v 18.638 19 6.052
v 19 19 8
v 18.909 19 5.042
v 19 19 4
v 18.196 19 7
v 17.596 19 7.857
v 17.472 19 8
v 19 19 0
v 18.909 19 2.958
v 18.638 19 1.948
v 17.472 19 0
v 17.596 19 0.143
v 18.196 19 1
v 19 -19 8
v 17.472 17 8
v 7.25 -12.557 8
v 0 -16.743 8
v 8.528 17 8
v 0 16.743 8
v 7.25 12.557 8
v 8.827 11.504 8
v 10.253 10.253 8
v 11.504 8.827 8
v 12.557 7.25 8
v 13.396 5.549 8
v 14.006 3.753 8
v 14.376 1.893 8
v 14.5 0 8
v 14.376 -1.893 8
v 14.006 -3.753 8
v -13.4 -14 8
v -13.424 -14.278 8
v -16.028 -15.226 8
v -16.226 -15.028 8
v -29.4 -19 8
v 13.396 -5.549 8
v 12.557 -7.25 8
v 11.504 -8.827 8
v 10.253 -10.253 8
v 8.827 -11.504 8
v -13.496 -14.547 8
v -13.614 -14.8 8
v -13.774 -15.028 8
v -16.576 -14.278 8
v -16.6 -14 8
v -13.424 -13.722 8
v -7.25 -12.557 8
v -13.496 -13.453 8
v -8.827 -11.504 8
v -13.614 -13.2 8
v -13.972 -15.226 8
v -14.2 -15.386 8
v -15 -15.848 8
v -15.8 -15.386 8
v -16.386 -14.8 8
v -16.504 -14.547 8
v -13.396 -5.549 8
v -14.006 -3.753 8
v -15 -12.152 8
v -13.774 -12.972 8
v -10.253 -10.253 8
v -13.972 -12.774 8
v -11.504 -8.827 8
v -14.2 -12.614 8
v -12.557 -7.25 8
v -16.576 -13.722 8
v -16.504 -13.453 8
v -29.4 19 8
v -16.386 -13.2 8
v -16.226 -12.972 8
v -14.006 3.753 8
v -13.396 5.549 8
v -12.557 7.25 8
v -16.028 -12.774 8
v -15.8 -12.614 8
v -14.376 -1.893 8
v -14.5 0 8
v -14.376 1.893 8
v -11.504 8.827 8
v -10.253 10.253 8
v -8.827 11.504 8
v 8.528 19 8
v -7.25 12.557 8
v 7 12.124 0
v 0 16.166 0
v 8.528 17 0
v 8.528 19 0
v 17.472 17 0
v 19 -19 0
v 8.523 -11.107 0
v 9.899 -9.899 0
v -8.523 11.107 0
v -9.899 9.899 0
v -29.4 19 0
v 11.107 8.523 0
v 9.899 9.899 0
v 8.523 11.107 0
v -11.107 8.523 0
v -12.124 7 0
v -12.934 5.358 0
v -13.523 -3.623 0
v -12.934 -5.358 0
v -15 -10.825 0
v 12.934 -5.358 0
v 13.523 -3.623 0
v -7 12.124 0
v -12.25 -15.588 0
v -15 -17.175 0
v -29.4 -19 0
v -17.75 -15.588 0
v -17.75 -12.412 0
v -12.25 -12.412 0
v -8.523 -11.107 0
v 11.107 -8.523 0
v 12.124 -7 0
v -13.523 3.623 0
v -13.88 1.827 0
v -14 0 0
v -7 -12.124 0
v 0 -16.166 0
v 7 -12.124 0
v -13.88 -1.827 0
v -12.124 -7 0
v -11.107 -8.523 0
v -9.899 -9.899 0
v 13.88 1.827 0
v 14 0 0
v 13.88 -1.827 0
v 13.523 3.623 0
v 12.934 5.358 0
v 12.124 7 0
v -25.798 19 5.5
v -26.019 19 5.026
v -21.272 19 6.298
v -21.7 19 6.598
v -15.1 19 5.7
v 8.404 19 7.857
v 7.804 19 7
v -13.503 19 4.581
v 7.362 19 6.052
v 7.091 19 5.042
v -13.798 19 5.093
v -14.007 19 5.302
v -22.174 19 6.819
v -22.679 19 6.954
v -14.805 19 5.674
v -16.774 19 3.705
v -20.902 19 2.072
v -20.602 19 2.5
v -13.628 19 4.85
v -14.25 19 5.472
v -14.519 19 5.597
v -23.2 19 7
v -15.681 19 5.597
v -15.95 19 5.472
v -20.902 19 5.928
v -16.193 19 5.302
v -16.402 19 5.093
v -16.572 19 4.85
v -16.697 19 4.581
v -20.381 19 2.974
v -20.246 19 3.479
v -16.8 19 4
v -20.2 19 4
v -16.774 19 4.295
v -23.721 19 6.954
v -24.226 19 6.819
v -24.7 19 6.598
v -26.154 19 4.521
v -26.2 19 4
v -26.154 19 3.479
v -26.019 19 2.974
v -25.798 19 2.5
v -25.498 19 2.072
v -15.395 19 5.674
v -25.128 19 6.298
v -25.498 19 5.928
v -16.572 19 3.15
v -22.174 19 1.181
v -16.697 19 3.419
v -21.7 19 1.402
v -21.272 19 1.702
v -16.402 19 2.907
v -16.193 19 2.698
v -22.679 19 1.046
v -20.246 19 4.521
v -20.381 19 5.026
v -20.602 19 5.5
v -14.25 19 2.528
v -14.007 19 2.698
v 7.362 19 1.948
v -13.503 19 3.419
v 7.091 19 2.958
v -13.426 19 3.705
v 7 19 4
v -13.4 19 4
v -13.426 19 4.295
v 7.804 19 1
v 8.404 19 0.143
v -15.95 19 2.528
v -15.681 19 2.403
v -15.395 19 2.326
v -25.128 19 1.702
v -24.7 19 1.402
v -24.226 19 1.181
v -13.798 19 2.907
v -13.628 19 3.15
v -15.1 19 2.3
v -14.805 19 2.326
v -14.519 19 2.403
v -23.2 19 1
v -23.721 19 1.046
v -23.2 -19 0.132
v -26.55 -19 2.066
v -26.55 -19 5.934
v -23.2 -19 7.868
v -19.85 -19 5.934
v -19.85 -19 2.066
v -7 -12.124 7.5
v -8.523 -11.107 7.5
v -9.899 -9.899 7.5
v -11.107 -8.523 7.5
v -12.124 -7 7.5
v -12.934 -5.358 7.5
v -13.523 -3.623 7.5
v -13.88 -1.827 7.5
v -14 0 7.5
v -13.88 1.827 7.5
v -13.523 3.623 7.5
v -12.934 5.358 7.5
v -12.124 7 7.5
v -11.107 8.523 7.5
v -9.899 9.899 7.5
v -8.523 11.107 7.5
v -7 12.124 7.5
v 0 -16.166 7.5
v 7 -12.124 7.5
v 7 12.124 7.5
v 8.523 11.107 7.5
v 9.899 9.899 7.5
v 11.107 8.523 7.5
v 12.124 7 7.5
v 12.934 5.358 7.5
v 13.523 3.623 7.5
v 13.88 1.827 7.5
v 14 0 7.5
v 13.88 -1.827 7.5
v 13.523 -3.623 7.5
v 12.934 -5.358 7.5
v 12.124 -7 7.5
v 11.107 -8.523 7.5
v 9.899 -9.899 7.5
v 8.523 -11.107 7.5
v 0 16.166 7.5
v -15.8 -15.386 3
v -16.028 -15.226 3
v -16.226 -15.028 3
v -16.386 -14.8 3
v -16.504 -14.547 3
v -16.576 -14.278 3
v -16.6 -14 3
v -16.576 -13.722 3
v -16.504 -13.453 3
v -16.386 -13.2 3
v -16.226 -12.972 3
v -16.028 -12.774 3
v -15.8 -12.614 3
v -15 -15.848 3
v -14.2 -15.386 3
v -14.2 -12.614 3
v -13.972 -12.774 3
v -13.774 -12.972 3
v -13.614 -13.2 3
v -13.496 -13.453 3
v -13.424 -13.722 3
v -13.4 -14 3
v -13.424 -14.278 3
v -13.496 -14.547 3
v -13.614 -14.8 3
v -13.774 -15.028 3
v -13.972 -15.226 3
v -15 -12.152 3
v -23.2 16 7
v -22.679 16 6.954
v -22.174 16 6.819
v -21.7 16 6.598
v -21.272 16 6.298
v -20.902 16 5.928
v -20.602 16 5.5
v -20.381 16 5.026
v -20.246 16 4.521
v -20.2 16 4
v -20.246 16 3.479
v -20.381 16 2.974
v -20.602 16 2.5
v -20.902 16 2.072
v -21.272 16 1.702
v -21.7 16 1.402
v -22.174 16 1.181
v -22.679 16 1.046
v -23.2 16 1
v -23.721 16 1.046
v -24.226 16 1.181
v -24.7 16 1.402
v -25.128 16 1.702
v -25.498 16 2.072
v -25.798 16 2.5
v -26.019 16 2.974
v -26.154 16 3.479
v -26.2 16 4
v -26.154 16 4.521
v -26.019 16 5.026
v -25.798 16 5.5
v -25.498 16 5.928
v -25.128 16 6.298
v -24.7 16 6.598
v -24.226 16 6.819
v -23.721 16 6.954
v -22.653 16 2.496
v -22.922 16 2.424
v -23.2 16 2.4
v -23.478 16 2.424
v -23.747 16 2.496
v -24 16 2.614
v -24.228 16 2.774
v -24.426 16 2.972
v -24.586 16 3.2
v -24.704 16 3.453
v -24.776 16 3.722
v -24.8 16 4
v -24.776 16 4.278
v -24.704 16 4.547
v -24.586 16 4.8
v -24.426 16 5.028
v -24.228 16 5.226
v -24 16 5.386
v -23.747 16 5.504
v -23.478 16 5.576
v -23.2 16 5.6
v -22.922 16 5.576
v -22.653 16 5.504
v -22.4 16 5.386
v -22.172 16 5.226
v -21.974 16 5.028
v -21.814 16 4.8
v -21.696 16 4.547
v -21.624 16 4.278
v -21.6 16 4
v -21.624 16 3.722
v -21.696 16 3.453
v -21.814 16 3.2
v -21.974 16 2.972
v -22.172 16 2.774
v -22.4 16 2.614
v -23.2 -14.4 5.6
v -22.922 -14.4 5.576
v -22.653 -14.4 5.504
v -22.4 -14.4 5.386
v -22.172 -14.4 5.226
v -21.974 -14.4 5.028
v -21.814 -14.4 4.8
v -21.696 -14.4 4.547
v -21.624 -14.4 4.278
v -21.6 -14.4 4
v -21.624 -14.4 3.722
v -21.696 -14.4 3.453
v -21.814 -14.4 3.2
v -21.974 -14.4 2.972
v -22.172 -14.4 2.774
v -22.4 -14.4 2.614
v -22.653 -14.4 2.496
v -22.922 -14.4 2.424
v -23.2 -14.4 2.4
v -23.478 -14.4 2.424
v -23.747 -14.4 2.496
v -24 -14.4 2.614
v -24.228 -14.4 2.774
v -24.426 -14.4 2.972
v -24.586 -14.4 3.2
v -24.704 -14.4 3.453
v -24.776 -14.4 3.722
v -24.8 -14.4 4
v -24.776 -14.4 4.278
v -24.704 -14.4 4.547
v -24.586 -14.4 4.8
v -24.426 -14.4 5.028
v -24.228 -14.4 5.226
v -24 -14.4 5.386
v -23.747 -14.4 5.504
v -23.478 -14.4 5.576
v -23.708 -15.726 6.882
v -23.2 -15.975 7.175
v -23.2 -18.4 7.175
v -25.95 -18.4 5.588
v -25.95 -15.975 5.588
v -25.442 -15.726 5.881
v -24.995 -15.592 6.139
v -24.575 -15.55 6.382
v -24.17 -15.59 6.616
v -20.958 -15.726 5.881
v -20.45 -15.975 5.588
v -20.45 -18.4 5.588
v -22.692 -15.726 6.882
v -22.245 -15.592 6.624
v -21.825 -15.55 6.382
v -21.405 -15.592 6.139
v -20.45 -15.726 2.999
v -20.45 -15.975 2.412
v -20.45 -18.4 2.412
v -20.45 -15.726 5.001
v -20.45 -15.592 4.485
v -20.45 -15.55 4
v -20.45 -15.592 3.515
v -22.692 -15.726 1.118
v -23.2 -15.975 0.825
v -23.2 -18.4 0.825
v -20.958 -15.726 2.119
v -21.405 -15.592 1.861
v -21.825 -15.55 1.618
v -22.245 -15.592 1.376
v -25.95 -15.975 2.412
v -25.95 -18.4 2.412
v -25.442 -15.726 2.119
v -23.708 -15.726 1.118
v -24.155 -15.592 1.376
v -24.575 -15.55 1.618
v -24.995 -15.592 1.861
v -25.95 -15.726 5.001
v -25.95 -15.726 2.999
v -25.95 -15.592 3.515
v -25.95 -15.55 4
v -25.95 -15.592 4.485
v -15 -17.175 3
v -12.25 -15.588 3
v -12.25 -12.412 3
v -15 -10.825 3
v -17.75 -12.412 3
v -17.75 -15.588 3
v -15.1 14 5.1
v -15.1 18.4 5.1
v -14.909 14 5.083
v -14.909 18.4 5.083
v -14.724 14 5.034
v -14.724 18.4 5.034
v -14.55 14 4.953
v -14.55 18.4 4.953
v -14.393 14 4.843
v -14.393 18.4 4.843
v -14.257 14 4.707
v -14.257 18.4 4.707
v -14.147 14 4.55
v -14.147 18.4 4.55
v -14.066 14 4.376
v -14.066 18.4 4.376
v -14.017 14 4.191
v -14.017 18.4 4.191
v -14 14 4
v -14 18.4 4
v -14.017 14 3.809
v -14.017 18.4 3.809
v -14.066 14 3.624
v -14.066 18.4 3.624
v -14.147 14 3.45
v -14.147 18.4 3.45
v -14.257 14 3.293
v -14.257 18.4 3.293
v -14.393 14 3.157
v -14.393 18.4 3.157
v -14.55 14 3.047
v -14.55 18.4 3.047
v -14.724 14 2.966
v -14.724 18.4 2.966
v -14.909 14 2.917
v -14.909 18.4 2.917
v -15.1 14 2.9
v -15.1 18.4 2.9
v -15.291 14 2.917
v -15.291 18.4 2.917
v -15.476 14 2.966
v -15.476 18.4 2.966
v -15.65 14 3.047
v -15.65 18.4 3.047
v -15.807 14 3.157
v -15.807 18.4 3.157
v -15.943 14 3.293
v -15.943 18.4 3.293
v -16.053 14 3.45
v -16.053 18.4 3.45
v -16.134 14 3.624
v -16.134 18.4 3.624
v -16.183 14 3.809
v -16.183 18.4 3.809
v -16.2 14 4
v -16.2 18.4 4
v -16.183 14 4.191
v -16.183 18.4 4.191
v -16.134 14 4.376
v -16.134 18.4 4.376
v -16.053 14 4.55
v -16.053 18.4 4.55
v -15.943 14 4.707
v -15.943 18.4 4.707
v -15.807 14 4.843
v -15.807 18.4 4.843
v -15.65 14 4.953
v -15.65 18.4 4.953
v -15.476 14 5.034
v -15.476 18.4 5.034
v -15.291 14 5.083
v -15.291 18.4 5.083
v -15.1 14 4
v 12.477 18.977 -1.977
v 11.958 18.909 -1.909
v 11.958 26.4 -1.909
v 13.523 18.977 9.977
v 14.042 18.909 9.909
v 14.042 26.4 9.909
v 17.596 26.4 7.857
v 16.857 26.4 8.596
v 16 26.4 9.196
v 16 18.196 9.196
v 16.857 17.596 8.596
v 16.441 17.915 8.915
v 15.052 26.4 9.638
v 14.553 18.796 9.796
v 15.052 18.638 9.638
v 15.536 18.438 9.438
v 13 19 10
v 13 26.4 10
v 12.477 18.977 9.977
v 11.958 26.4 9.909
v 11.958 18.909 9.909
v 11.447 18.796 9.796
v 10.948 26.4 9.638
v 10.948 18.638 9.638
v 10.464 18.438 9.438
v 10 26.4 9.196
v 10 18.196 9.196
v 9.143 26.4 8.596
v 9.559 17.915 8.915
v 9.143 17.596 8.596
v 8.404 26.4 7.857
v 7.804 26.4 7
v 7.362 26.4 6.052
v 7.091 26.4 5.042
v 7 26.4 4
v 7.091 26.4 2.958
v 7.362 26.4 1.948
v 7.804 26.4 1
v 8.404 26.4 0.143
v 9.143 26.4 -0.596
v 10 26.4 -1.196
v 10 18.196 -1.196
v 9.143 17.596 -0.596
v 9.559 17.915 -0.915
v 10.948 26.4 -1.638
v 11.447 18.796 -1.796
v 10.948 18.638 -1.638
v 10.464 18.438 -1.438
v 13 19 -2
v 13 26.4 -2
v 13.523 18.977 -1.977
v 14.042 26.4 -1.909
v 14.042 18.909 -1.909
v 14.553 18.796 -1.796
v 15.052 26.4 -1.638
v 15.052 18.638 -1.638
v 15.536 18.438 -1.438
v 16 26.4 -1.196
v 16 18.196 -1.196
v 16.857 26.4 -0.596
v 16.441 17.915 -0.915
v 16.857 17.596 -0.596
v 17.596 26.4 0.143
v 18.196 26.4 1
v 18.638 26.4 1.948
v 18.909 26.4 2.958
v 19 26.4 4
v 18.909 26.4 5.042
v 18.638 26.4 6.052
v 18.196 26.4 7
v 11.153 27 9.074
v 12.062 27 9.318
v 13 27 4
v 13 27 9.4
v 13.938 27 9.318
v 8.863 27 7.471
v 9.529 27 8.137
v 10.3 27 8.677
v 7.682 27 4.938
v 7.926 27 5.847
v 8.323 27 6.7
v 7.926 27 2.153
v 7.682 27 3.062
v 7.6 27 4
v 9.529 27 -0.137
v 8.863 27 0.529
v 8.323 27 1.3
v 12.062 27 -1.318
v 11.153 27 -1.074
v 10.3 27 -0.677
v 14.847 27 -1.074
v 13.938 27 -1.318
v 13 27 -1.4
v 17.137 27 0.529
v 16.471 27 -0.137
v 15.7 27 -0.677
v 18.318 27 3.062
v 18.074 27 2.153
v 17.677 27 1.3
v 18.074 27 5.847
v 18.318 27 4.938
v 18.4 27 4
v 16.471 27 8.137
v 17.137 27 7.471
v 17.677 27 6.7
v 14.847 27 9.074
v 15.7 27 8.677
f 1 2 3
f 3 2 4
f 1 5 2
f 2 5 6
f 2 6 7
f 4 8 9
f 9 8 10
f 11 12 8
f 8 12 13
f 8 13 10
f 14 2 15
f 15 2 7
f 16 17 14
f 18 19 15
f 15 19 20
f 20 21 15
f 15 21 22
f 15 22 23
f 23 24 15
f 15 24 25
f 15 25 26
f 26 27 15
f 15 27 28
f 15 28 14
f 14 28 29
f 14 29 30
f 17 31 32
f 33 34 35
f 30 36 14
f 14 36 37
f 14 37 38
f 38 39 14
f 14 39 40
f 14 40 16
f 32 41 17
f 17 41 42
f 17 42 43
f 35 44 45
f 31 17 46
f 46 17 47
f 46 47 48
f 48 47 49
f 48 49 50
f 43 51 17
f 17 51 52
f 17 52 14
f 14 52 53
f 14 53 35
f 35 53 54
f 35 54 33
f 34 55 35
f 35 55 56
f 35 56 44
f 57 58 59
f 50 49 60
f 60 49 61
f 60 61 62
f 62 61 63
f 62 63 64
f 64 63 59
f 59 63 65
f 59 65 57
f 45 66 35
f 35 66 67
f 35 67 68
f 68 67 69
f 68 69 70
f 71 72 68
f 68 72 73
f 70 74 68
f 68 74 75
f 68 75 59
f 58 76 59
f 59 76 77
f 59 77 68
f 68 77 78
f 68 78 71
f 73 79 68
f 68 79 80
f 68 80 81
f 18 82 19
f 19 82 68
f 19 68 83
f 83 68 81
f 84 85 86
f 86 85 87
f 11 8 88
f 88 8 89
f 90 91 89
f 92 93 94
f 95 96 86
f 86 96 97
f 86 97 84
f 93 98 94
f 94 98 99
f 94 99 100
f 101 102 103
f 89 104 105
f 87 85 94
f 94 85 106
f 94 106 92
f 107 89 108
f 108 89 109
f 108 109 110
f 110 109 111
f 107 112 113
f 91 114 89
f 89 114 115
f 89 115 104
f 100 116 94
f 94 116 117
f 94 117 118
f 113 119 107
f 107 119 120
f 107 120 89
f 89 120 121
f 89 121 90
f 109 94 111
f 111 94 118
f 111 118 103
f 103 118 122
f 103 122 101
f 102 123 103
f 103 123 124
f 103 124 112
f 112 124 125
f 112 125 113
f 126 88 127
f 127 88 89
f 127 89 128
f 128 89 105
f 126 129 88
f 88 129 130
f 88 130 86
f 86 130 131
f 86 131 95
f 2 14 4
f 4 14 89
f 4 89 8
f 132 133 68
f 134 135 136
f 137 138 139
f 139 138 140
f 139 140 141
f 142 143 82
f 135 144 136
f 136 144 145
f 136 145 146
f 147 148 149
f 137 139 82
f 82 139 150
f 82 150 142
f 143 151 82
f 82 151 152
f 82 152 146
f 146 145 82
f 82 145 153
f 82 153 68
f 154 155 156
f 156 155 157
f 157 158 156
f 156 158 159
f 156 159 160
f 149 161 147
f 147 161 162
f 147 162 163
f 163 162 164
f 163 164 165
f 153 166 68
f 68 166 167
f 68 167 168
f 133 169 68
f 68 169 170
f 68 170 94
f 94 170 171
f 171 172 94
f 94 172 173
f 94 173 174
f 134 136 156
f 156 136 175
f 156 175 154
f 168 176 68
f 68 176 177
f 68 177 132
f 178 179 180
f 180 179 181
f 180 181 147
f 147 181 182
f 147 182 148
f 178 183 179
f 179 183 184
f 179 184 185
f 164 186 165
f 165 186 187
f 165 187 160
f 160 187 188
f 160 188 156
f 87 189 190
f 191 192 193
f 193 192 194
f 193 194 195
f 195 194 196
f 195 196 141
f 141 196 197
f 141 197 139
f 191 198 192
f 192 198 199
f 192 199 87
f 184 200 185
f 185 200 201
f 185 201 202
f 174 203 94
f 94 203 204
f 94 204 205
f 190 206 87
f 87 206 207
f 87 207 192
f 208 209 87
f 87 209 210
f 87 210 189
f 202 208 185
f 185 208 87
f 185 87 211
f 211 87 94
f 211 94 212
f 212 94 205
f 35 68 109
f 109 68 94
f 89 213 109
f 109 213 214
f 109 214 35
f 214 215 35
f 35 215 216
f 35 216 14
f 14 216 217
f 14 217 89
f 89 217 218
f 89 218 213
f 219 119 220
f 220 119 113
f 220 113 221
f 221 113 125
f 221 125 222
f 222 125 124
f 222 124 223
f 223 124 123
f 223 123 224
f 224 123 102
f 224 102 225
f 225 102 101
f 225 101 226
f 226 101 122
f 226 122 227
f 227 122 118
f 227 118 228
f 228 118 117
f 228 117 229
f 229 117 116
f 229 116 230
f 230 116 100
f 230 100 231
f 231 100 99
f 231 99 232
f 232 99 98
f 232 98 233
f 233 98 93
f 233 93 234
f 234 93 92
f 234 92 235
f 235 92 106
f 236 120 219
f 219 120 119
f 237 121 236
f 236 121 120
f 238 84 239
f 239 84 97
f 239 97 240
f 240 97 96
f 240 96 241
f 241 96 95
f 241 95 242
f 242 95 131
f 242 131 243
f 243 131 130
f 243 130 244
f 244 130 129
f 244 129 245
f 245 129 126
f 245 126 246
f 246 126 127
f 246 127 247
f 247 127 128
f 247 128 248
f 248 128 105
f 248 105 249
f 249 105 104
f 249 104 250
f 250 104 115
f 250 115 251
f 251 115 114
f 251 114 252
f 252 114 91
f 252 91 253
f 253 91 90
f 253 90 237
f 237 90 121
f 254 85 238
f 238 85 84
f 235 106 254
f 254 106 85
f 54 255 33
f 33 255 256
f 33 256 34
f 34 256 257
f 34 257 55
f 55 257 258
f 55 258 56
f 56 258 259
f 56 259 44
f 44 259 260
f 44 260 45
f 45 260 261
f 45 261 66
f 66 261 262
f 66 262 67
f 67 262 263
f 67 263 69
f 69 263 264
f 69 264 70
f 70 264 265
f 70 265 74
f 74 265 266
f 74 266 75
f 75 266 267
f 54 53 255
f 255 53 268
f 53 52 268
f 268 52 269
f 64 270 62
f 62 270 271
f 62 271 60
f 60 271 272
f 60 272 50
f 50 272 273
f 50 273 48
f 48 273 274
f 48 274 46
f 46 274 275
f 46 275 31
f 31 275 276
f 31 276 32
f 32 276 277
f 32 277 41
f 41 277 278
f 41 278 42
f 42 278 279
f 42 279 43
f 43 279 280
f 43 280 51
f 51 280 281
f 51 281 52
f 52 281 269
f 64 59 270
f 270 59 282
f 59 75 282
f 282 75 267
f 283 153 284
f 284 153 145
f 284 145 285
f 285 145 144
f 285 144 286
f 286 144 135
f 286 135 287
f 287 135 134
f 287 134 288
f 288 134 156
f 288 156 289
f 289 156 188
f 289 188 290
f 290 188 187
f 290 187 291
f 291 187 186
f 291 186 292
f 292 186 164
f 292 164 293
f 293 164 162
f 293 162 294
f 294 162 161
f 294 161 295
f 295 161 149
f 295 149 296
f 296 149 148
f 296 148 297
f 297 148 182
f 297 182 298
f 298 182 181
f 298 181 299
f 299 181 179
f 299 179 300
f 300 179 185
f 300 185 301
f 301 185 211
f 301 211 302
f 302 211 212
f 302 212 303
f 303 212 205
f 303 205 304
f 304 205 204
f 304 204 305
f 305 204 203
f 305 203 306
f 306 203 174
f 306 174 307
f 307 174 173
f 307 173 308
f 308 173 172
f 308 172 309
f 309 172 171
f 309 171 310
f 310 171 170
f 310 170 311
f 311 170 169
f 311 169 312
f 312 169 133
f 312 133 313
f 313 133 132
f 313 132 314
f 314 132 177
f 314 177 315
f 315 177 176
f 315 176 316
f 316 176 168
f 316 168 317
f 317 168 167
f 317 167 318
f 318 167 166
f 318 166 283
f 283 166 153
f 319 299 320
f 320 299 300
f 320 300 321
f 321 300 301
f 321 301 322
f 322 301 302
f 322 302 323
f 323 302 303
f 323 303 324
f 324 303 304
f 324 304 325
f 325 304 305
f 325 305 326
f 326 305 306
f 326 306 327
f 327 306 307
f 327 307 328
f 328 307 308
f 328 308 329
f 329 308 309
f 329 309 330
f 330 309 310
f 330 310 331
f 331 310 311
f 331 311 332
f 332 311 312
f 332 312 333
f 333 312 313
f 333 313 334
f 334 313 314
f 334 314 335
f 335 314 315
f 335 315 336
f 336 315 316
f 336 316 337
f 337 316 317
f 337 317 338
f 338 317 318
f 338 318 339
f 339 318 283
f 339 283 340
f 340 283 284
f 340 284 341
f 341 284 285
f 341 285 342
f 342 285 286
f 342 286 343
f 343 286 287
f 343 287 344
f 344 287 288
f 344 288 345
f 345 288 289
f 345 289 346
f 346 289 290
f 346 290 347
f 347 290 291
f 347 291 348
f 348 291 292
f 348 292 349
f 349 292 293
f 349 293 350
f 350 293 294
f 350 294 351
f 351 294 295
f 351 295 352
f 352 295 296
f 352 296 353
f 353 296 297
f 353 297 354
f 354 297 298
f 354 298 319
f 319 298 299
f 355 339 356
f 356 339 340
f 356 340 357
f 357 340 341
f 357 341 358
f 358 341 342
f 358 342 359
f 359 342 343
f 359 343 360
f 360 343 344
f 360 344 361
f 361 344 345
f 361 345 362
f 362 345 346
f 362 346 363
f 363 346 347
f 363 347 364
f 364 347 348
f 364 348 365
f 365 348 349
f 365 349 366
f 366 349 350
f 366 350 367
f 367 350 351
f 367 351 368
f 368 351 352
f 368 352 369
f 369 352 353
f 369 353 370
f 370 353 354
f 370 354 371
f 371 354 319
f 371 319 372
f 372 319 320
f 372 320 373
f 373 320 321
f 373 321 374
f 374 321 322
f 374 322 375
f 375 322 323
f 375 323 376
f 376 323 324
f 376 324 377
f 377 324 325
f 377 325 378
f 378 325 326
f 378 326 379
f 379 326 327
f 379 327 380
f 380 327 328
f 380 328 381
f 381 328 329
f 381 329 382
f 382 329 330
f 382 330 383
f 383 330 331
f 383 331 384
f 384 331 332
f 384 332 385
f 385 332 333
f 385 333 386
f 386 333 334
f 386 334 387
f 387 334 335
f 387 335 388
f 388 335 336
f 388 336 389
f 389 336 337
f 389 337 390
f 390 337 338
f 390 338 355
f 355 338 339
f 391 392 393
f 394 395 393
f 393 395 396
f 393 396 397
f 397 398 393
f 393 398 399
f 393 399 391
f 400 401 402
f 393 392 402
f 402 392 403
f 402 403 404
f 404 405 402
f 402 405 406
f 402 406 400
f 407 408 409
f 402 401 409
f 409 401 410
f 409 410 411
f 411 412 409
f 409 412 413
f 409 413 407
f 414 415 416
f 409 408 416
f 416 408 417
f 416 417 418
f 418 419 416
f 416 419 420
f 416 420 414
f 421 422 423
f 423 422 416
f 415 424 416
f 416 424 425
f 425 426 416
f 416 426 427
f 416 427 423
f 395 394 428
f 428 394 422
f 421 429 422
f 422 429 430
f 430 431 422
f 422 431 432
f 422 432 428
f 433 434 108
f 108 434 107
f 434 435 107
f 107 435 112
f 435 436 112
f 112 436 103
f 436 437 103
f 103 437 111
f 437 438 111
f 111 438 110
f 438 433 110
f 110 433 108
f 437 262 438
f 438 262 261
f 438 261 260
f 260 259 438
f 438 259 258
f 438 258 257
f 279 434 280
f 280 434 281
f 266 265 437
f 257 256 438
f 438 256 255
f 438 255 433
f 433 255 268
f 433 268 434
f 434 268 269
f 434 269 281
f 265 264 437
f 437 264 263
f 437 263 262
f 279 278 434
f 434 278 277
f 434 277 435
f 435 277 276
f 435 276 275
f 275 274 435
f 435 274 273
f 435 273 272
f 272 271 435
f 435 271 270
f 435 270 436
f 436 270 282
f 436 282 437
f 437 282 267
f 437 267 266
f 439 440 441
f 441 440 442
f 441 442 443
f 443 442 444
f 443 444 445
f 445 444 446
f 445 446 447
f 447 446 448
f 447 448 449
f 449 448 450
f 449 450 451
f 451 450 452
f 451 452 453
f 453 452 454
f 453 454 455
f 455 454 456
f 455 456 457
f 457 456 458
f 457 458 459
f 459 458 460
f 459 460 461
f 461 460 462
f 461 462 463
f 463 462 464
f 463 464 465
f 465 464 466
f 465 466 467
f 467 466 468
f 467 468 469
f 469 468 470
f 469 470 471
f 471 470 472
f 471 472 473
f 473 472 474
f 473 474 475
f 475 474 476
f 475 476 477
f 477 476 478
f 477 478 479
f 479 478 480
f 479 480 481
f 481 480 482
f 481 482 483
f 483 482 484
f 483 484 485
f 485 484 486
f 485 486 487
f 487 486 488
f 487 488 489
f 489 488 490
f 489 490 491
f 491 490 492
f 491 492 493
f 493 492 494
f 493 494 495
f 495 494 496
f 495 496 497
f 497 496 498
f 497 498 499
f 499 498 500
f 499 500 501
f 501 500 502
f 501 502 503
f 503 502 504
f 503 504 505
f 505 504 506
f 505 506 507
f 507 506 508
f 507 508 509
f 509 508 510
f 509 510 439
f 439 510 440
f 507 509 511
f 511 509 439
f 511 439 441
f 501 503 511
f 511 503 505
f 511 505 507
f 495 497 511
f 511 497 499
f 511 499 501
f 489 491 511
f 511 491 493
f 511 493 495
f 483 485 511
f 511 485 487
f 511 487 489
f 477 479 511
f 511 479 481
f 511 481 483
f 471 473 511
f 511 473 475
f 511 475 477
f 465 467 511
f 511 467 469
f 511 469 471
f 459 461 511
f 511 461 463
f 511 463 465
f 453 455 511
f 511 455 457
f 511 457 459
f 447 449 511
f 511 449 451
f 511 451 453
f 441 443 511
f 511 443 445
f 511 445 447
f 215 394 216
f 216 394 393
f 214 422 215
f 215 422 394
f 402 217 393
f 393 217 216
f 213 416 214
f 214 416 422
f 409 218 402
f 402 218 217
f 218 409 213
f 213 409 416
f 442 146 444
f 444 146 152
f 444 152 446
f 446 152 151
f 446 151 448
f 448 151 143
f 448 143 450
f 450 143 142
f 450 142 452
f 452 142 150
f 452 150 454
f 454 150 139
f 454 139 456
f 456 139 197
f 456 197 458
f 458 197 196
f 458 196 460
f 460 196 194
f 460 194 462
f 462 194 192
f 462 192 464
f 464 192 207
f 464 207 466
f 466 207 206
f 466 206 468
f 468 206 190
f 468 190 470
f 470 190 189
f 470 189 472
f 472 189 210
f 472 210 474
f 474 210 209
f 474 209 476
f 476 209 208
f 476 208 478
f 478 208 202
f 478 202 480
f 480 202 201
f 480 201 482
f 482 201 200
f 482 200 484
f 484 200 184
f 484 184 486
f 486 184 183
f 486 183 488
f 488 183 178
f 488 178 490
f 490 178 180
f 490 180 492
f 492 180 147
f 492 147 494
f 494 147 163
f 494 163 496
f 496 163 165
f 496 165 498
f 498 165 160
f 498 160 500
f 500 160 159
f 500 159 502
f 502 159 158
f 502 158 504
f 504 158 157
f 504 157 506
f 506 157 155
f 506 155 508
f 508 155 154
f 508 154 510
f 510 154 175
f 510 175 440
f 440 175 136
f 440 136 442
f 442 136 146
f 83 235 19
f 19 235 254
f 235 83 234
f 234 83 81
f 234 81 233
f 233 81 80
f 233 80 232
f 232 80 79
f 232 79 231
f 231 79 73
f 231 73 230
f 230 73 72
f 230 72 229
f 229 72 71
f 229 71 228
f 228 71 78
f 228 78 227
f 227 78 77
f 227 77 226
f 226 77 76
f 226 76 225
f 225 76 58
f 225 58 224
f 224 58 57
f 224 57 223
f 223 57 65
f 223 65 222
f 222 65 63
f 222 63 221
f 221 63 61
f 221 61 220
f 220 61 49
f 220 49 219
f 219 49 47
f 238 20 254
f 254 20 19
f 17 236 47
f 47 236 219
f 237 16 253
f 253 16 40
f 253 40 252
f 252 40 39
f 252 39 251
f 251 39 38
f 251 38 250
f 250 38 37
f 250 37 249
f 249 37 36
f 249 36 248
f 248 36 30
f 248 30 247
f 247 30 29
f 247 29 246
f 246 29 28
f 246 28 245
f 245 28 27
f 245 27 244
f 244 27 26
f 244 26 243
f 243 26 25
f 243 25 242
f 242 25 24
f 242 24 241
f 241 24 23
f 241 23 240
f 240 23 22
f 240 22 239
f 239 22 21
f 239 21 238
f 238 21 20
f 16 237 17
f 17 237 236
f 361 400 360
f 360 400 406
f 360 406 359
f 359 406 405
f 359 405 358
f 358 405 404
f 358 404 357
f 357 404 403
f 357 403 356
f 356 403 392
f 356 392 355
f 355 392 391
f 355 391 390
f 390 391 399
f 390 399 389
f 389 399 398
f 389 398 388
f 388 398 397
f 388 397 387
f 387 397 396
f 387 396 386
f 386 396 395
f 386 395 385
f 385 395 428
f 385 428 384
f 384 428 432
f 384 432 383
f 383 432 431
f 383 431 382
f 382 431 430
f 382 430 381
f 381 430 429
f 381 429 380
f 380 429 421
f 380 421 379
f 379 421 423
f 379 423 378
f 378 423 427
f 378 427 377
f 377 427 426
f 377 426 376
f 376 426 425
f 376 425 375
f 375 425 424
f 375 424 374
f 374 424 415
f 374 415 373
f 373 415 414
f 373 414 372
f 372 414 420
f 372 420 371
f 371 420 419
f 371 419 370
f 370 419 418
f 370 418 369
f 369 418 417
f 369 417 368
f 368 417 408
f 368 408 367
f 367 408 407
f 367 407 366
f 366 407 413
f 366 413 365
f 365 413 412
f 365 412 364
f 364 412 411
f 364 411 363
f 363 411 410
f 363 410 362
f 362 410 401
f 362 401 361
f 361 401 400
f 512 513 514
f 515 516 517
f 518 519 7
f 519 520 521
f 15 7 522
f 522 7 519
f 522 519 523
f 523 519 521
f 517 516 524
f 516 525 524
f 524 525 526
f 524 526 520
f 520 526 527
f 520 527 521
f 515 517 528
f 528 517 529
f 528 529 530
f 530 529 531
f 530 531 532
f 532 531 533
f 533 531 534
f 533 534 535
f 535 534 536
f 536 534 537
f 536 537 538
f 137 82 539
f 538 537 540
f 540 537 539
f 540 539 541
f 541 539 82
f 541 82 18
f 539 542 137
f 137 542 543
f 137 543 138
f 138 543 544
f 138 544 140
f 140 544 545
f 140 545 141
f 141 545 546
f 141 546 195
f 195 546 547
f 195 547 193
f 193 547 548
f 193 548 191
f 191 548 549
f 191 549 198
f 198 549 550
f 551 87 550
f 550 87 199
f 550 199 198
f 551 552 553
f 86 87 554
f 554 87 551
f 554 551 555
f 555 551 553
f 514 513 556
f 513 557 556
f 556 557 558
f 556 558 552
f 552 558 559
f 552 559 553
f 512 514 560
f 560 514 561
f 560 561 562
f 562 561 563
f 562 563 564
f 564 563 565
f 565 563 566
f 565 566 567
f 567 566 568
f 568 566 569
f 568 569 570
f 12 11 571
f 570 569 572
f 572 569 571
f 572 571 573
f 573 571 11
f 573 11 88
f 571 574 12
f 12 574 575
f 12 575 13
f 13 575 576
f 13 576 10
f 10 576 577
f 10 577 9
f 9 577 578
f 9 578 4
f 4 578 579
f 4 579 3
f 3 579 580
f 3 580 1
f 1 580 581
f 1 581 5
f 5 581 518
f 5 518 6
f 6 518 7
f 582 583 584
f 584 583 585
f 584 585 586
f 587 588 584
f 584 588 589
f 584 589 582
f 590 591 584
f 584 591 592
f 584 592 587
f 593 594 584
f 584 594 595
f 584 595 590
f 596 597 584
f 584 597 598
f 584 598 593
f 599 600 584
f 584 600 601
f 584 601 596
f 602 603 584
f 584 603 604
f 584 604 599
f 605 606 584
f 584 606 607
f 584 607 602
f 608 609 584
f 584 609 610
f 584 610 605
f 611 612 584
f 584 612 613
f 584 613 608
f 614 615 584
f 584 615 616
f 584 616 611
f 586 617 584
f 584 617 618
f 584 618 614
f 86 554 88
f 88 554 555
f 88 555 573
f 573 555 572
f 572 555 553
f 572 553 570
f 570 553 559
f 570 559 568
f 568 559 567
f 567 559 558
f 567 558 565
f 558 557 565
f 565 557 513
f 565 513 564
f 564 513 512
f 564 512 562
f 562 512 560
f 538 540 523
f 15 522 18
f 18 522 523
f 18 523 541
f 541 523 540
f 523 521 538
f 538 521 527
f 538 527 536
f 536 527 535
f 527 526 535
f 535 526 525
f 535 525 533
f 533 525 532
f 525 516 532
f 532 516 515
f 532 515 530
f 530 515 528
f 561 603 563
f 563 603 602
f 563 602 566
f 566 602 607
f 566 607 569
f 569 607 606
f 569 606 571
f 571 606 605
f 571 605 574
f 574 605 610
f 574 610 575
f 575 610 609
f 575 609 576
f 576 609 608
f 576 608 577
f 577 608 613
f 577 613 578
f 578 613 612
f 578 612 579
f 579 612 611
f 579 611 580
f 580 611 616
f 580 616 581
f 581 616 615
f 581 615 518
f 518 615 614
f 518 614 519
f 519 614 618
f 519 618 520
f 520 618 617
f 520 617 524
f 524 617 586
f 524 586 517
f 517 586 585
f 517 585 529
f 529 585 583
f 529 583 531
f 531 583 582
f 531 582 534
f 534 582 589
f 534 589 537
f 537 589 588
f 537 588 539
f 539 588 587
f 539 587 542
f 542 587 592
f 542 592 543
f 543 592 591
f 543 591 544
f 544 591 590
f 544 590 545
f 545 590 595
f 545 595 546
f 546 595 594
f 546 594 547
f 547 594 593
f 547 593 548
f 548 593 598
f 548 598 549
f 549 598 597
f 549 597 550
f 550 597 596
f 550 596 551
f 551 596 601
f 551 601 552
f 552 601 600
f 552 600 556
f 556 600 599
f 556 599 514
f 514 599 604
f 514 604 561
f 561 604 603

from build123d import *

# Parameters (mm, degrees)
SKETCH1_W           = 48.4
SKETCH1_H           = 38
BOSS_EXTRUDE1_DEPTH = 8
SKETCH2_R           = 3
CUT_EXTRUDE1_DEPTH  = 3
SKETCH3_R           = 1.6
CUT_EXTRUDE2_DEPTH  = 32
CUT_EXTRUDE3_DEPTH  = 3
CUT_EXTRUDE4_DEPTH  = 3
SKETCH6_R           = 1.1
CUT_EXTRUDE5_DEPTH  = 5
CHAMFER1_SIZE       = 0.6
CHAMFER2_SIZE       = 0.5
CHAMFER3_SIZE       = 1.6
SKETCH8_R           = 6
BOSS_EXTRUDE2_DEPTH = 8
CHAMFER4_SIZE       = 2
CHAMFER5_SIZE       = 0.6


with BuildPart() as part:
    # Sketch1 → Boss-Extrude1 (new body)
    with BuildSketch(Plane.XY):
        with Locations((-5.2, 0)):
            Rectangle(SKETCH1_W, SKETCH1_H)
        with BuildLine():
            Line((-7, 12.124355653), (0, 16.165807537))
            Line((0, 16.165807537), (7, 12.124355653))
            ThreePointArc((7, 12.124355653), (14, 0), (7, -12.124355653))
            Line((7, -12.124355653), (0, -16.165807537))
            Line((0, -16.165807537), (-7, -12.124355653))
            ThreePointArc((-7, -12.124355653), (-14, 0), (-7, 12.124355653))
        make_face(mode=Mode.SUBTRACT)
        with BuildLine():
            Line((-15.8, -12.614359354), (-15, -12.152479139))
            Line((-15, -12.152479139), (-14.2, -12.614359354))
            ThreePointArc((-14.2, -12.614359354), (-13.4, -14), (-14.2, -15.385640646))
            Line((-14.2, -15.385640646), (-15, -15.847520861))
            Line((-15, -15.847520861), (-15.8, -15.385640646))
            ThreePointArc((-15.8, -15.385640646), (-16.6, -14), (-15.8, -12.614359354))
        make_face(mode=Mode.SUBTRACT)
    extrude(amount=BOSS_EXTRUDE1_DEPTH)

    # Sketch2 → Cut-Extrude1 (cut)
    with BuildSketch(Plane(origin=(0, 19, 0), x_dir=(1, 0, 0), z_dir=(0, 1, 0))):
        with Locations(Location((-23.2, -4, 0), (0, 0, 270))):
            Circle(SKETCH2_R)
    extrude(amount=-CUT_EXTRUDE1_DEPTH, mode=Mode.SUBTRACT)

    # Sketch3 → Cut-Extrude2 (cut)
    with BuildSketch(Plane(origin=(0, 16, 0), x_dir=(1, 0, 0), z_dir=(0, 1, 0))):
        with Locations(Location((-23.2, -4, 0), (0, 0, 270))):
            Circle(SKETCH3_R)
    extrude(amount=-CUT_EXTRUDE2_DEPTH, mode=Mode.SUBTRACT)

    # Sketch4 → Cut-Extrude3 (cut)
    with BuildSketch(Plane.XZ.offset(19)):
        Polygon((-25.95, 5.58771324), (-25.95, 2.41228676), (-23.2, 0.824573519), (-20.45, 2.41228676), (-20.45, 5.58771324), (-23.2, 7.175426481), align=None)
    extrude(amount=-CUT_EXTRUDE3_DEPTH, mode=Mode.SUBTRACT)

    # Sketch5 → Cut-Extrude4 (cut)
    with BuildSketch(Plane(origin=(0, 0, 0), x_dir=(-1, 0, 0), z_dir=(0, 0, -1))):
        Polygon((12.25, -15.58771324), (12.25, -12.41228676), (15, -10.824573519), (17.75, -12.41228676), (17.75, -15.58771324), (15, -17.175426481), align=None)
    extrude(amount=-CUT_EXTRUDE4_DEPTH, mode=Mode.SUBTRACT)

    # Sketch6 → Cut-Extrude5 (cut)
    with BuildSketch(Plane(origin=(0, 19, 0), x_dir=(1, 0, 0), z_dir=(0, 1, 0))):
        with Locations(Location((-15.1, -4, 0), (0, 0, 270))):
            Circle(SKETCH6_R)
    extrude(amount=-CUT_EXTRUDE5_DEPTH, mode=Mode.SUBTRACT)

    # Chamfer1
    chamfer1_edges = [part.edges().sort_by_distance(p)[0] for p in [
        (-15.1, 19, 2.9),
        (-24.575, -19, 6.38156986),
        (-25.95, -19, 4),
        (-24.575, -19, 1.61843014),
        (-21.825, -19, 1.61843014),
        (-20.45, -19, 4),
        (-21.825, -19, 6.38156986),
    ]]
    chamfer(chamfer1_edges, length=CHAMFER1_SIZE)

    # Chamfer2
    chamfer2_edges = [part.edges().sort_by_distance(p)[0] for p in [
        (-14, 0, 8),
        (-3.5, -14.145081595, 8),
        (3.5, -14.145081595, 8),
        (14, 0, 8),
        (3.5, 14.145081595, 8),
        (-3.5, 14.145081595, 8),
    ]]
    chamfer(chamfer2_edges, length=CHAMFER2_SIZE)

    # Chamfer3
    # the kernel refuses this chamfer: 1.6 mm, written as the material it takes off along each edge
    with BuildSketch(Plane(origin=(-23.2, -16, 4), x_dir=(0, 0, 1), z_dir=(-1, 0, 0))) as chamfer3_piece_1_section:
        Polygon((1.6, CHAMFER3_SIZE), (1.6 + CHAMFER3_SIZE, 0), (1.6, 0), align=None)
    chamfer3_piece_1 = revolve(axis=Axis((-23.2, -16, 4), (0, 1, 0)), mode=Mode.PRIVATE)
    chamfer3_piece_1 = split(chamfer3_piece_1, bisect_by=Plane(origin=(-25.591184435, -15.183394219, 5.794875504), z_dir=(0.5000000000000009, 0, -0.8660254037844382)), keep=Keep.TOP, mode=Mode.PRIVATE)
    chamfer3_piece_1 = split(chamfer3_piece_1, bisect_by=Plane(origin=(-20.808815565, -15.183394219, 5.794875504), z_dir=(-0.4999999999999998, 0, -0.8660254037844388)), keep=Keep.TOP, mode=Mode.PRIVATE)
    chamfer3_piece_1 = split(chamfer3_piece_1, bisect_by=Plane(origin=(-25.95, -15.183394219, 1.653222572), z_dir=(1, 0, 0)), keep=Keep.TOP, mode=Mode.PRIVATE)
    chamfer3_piece_1 = split(chamfer3_piece_1, bisect_by=Plane(origin=(-20.45, -15.183394219, 1.653222572), z_dir=(-1, 0, 0)), keep=Keep.TOP, mode=Mode.PRIVATE)
    chamfer3_piece_1 = split(chamfer3_piece_1, bisect_by=Plane(origin=(-23.558815565, -15.183394219, 1.031735783), z_dir=(0.5000000000000006, 0, 0.8660254037844384)), keep=Keep.TOP, mode=Mode.PRIVATE)
    chamfer3_piece_1 = split(chamfer3_piece_1, bisect_by=Plane(origin=(-22.841184435, -15.183394219, 1.031735783), z_dir=(-0.4999999999999998, 0, 0.8660254037844388)), keep=Keep.TOP, mode=Mode.PRIVATE)
    add(chamfer3_piece_1, mode=Mode.SUBTRACT)

    # Sketch8 → Boss-Extrude2 (add)
    with BuildSketch(Plane(origin=(0, 19, 0), x_dir=(1, 0, 0), z_dir=(0, 1, 0))):
        with Locations(Location((13, -4, 0), (0, 0, 138.189685104))):
            Circle(SKETCH8_R)
    extrude(amount=BOSS_EXTRUDE2_DEPTH)

    # Chamfer4
    # the kernel refuses this chamfer: 2 mm, written as the material it adds along each edge
    with BuildSketch(Plane(origin=(22.615501931, 19, 0), x_dir=(0, -0.9996219169112968, 0.02749587661058639), z_dir=(-1, 0, 0))) as chamfer4_piece_1_section:
        Polygon((CHAMFER4_SIZE * 0.999621916911, -CHAMFER4_SIZE * 0.0274958766106), (-CHAMFER4_SIZE * 0.0274958766106, -CHAMFER4_SIZE * 0.999621916911), (0, 0), align=None)
    chamfer4_piece_1 = extrude(amount=19.231003862, mode=Mode.PRIVATE)
    chamfer4_piece_1 = chamfer4_piece_1 & Plane(origin=(13, 18.289975825, 4), x_dir=(-0.7453559924973536, 0, -0.666666666669547), z_dir=(0, -1, 0)) * Cylinder(6, 47, mode=Mode.PRIVATE)
    add(chamfer4_piece_1)
    with BuildSketch(Plane(origin=(22.615501931, 19, 8), x_dir=(0, -0.9996219169112968, -0.02749587661058651), z_dir=(-1, 0, 0))) as chamfer4_piece_2_section:
        Polygon((CHAMFER4_SIZE * 0.999621916911, CHAMFER4_SIZE * 0.0274958766106), (-CHAMFER4_SIZE * 0.0274958766106, CHAMFER4_SIZE * 0.999621916911), (0, 0), align=None)
    chamfer4_piece_2 = extrude(amount=19.231003862, mode=Mode.PRIVATE)
    chamfer4_piece_2 = chamfer4_piece_2 & Plane(origin=(13, 18.289975825, 4), x_dir=(-0.7453559924973536, 0, -0.666666666669547), z_dir=(0, -1, 0)) * Cylinder(6, 47, mode=Mode.PRIVATE)
    add(chamfer4_piece_2)

    # Chamfer5
    chamfer5_edges = [part.edges().sort_by_distance(p)[0] for p in [
        (17.472135955, 27, 8),
    ]]
    chamfer(chamfer5_edges, length=CHAMFER5_SIZE)


solid = part.part
